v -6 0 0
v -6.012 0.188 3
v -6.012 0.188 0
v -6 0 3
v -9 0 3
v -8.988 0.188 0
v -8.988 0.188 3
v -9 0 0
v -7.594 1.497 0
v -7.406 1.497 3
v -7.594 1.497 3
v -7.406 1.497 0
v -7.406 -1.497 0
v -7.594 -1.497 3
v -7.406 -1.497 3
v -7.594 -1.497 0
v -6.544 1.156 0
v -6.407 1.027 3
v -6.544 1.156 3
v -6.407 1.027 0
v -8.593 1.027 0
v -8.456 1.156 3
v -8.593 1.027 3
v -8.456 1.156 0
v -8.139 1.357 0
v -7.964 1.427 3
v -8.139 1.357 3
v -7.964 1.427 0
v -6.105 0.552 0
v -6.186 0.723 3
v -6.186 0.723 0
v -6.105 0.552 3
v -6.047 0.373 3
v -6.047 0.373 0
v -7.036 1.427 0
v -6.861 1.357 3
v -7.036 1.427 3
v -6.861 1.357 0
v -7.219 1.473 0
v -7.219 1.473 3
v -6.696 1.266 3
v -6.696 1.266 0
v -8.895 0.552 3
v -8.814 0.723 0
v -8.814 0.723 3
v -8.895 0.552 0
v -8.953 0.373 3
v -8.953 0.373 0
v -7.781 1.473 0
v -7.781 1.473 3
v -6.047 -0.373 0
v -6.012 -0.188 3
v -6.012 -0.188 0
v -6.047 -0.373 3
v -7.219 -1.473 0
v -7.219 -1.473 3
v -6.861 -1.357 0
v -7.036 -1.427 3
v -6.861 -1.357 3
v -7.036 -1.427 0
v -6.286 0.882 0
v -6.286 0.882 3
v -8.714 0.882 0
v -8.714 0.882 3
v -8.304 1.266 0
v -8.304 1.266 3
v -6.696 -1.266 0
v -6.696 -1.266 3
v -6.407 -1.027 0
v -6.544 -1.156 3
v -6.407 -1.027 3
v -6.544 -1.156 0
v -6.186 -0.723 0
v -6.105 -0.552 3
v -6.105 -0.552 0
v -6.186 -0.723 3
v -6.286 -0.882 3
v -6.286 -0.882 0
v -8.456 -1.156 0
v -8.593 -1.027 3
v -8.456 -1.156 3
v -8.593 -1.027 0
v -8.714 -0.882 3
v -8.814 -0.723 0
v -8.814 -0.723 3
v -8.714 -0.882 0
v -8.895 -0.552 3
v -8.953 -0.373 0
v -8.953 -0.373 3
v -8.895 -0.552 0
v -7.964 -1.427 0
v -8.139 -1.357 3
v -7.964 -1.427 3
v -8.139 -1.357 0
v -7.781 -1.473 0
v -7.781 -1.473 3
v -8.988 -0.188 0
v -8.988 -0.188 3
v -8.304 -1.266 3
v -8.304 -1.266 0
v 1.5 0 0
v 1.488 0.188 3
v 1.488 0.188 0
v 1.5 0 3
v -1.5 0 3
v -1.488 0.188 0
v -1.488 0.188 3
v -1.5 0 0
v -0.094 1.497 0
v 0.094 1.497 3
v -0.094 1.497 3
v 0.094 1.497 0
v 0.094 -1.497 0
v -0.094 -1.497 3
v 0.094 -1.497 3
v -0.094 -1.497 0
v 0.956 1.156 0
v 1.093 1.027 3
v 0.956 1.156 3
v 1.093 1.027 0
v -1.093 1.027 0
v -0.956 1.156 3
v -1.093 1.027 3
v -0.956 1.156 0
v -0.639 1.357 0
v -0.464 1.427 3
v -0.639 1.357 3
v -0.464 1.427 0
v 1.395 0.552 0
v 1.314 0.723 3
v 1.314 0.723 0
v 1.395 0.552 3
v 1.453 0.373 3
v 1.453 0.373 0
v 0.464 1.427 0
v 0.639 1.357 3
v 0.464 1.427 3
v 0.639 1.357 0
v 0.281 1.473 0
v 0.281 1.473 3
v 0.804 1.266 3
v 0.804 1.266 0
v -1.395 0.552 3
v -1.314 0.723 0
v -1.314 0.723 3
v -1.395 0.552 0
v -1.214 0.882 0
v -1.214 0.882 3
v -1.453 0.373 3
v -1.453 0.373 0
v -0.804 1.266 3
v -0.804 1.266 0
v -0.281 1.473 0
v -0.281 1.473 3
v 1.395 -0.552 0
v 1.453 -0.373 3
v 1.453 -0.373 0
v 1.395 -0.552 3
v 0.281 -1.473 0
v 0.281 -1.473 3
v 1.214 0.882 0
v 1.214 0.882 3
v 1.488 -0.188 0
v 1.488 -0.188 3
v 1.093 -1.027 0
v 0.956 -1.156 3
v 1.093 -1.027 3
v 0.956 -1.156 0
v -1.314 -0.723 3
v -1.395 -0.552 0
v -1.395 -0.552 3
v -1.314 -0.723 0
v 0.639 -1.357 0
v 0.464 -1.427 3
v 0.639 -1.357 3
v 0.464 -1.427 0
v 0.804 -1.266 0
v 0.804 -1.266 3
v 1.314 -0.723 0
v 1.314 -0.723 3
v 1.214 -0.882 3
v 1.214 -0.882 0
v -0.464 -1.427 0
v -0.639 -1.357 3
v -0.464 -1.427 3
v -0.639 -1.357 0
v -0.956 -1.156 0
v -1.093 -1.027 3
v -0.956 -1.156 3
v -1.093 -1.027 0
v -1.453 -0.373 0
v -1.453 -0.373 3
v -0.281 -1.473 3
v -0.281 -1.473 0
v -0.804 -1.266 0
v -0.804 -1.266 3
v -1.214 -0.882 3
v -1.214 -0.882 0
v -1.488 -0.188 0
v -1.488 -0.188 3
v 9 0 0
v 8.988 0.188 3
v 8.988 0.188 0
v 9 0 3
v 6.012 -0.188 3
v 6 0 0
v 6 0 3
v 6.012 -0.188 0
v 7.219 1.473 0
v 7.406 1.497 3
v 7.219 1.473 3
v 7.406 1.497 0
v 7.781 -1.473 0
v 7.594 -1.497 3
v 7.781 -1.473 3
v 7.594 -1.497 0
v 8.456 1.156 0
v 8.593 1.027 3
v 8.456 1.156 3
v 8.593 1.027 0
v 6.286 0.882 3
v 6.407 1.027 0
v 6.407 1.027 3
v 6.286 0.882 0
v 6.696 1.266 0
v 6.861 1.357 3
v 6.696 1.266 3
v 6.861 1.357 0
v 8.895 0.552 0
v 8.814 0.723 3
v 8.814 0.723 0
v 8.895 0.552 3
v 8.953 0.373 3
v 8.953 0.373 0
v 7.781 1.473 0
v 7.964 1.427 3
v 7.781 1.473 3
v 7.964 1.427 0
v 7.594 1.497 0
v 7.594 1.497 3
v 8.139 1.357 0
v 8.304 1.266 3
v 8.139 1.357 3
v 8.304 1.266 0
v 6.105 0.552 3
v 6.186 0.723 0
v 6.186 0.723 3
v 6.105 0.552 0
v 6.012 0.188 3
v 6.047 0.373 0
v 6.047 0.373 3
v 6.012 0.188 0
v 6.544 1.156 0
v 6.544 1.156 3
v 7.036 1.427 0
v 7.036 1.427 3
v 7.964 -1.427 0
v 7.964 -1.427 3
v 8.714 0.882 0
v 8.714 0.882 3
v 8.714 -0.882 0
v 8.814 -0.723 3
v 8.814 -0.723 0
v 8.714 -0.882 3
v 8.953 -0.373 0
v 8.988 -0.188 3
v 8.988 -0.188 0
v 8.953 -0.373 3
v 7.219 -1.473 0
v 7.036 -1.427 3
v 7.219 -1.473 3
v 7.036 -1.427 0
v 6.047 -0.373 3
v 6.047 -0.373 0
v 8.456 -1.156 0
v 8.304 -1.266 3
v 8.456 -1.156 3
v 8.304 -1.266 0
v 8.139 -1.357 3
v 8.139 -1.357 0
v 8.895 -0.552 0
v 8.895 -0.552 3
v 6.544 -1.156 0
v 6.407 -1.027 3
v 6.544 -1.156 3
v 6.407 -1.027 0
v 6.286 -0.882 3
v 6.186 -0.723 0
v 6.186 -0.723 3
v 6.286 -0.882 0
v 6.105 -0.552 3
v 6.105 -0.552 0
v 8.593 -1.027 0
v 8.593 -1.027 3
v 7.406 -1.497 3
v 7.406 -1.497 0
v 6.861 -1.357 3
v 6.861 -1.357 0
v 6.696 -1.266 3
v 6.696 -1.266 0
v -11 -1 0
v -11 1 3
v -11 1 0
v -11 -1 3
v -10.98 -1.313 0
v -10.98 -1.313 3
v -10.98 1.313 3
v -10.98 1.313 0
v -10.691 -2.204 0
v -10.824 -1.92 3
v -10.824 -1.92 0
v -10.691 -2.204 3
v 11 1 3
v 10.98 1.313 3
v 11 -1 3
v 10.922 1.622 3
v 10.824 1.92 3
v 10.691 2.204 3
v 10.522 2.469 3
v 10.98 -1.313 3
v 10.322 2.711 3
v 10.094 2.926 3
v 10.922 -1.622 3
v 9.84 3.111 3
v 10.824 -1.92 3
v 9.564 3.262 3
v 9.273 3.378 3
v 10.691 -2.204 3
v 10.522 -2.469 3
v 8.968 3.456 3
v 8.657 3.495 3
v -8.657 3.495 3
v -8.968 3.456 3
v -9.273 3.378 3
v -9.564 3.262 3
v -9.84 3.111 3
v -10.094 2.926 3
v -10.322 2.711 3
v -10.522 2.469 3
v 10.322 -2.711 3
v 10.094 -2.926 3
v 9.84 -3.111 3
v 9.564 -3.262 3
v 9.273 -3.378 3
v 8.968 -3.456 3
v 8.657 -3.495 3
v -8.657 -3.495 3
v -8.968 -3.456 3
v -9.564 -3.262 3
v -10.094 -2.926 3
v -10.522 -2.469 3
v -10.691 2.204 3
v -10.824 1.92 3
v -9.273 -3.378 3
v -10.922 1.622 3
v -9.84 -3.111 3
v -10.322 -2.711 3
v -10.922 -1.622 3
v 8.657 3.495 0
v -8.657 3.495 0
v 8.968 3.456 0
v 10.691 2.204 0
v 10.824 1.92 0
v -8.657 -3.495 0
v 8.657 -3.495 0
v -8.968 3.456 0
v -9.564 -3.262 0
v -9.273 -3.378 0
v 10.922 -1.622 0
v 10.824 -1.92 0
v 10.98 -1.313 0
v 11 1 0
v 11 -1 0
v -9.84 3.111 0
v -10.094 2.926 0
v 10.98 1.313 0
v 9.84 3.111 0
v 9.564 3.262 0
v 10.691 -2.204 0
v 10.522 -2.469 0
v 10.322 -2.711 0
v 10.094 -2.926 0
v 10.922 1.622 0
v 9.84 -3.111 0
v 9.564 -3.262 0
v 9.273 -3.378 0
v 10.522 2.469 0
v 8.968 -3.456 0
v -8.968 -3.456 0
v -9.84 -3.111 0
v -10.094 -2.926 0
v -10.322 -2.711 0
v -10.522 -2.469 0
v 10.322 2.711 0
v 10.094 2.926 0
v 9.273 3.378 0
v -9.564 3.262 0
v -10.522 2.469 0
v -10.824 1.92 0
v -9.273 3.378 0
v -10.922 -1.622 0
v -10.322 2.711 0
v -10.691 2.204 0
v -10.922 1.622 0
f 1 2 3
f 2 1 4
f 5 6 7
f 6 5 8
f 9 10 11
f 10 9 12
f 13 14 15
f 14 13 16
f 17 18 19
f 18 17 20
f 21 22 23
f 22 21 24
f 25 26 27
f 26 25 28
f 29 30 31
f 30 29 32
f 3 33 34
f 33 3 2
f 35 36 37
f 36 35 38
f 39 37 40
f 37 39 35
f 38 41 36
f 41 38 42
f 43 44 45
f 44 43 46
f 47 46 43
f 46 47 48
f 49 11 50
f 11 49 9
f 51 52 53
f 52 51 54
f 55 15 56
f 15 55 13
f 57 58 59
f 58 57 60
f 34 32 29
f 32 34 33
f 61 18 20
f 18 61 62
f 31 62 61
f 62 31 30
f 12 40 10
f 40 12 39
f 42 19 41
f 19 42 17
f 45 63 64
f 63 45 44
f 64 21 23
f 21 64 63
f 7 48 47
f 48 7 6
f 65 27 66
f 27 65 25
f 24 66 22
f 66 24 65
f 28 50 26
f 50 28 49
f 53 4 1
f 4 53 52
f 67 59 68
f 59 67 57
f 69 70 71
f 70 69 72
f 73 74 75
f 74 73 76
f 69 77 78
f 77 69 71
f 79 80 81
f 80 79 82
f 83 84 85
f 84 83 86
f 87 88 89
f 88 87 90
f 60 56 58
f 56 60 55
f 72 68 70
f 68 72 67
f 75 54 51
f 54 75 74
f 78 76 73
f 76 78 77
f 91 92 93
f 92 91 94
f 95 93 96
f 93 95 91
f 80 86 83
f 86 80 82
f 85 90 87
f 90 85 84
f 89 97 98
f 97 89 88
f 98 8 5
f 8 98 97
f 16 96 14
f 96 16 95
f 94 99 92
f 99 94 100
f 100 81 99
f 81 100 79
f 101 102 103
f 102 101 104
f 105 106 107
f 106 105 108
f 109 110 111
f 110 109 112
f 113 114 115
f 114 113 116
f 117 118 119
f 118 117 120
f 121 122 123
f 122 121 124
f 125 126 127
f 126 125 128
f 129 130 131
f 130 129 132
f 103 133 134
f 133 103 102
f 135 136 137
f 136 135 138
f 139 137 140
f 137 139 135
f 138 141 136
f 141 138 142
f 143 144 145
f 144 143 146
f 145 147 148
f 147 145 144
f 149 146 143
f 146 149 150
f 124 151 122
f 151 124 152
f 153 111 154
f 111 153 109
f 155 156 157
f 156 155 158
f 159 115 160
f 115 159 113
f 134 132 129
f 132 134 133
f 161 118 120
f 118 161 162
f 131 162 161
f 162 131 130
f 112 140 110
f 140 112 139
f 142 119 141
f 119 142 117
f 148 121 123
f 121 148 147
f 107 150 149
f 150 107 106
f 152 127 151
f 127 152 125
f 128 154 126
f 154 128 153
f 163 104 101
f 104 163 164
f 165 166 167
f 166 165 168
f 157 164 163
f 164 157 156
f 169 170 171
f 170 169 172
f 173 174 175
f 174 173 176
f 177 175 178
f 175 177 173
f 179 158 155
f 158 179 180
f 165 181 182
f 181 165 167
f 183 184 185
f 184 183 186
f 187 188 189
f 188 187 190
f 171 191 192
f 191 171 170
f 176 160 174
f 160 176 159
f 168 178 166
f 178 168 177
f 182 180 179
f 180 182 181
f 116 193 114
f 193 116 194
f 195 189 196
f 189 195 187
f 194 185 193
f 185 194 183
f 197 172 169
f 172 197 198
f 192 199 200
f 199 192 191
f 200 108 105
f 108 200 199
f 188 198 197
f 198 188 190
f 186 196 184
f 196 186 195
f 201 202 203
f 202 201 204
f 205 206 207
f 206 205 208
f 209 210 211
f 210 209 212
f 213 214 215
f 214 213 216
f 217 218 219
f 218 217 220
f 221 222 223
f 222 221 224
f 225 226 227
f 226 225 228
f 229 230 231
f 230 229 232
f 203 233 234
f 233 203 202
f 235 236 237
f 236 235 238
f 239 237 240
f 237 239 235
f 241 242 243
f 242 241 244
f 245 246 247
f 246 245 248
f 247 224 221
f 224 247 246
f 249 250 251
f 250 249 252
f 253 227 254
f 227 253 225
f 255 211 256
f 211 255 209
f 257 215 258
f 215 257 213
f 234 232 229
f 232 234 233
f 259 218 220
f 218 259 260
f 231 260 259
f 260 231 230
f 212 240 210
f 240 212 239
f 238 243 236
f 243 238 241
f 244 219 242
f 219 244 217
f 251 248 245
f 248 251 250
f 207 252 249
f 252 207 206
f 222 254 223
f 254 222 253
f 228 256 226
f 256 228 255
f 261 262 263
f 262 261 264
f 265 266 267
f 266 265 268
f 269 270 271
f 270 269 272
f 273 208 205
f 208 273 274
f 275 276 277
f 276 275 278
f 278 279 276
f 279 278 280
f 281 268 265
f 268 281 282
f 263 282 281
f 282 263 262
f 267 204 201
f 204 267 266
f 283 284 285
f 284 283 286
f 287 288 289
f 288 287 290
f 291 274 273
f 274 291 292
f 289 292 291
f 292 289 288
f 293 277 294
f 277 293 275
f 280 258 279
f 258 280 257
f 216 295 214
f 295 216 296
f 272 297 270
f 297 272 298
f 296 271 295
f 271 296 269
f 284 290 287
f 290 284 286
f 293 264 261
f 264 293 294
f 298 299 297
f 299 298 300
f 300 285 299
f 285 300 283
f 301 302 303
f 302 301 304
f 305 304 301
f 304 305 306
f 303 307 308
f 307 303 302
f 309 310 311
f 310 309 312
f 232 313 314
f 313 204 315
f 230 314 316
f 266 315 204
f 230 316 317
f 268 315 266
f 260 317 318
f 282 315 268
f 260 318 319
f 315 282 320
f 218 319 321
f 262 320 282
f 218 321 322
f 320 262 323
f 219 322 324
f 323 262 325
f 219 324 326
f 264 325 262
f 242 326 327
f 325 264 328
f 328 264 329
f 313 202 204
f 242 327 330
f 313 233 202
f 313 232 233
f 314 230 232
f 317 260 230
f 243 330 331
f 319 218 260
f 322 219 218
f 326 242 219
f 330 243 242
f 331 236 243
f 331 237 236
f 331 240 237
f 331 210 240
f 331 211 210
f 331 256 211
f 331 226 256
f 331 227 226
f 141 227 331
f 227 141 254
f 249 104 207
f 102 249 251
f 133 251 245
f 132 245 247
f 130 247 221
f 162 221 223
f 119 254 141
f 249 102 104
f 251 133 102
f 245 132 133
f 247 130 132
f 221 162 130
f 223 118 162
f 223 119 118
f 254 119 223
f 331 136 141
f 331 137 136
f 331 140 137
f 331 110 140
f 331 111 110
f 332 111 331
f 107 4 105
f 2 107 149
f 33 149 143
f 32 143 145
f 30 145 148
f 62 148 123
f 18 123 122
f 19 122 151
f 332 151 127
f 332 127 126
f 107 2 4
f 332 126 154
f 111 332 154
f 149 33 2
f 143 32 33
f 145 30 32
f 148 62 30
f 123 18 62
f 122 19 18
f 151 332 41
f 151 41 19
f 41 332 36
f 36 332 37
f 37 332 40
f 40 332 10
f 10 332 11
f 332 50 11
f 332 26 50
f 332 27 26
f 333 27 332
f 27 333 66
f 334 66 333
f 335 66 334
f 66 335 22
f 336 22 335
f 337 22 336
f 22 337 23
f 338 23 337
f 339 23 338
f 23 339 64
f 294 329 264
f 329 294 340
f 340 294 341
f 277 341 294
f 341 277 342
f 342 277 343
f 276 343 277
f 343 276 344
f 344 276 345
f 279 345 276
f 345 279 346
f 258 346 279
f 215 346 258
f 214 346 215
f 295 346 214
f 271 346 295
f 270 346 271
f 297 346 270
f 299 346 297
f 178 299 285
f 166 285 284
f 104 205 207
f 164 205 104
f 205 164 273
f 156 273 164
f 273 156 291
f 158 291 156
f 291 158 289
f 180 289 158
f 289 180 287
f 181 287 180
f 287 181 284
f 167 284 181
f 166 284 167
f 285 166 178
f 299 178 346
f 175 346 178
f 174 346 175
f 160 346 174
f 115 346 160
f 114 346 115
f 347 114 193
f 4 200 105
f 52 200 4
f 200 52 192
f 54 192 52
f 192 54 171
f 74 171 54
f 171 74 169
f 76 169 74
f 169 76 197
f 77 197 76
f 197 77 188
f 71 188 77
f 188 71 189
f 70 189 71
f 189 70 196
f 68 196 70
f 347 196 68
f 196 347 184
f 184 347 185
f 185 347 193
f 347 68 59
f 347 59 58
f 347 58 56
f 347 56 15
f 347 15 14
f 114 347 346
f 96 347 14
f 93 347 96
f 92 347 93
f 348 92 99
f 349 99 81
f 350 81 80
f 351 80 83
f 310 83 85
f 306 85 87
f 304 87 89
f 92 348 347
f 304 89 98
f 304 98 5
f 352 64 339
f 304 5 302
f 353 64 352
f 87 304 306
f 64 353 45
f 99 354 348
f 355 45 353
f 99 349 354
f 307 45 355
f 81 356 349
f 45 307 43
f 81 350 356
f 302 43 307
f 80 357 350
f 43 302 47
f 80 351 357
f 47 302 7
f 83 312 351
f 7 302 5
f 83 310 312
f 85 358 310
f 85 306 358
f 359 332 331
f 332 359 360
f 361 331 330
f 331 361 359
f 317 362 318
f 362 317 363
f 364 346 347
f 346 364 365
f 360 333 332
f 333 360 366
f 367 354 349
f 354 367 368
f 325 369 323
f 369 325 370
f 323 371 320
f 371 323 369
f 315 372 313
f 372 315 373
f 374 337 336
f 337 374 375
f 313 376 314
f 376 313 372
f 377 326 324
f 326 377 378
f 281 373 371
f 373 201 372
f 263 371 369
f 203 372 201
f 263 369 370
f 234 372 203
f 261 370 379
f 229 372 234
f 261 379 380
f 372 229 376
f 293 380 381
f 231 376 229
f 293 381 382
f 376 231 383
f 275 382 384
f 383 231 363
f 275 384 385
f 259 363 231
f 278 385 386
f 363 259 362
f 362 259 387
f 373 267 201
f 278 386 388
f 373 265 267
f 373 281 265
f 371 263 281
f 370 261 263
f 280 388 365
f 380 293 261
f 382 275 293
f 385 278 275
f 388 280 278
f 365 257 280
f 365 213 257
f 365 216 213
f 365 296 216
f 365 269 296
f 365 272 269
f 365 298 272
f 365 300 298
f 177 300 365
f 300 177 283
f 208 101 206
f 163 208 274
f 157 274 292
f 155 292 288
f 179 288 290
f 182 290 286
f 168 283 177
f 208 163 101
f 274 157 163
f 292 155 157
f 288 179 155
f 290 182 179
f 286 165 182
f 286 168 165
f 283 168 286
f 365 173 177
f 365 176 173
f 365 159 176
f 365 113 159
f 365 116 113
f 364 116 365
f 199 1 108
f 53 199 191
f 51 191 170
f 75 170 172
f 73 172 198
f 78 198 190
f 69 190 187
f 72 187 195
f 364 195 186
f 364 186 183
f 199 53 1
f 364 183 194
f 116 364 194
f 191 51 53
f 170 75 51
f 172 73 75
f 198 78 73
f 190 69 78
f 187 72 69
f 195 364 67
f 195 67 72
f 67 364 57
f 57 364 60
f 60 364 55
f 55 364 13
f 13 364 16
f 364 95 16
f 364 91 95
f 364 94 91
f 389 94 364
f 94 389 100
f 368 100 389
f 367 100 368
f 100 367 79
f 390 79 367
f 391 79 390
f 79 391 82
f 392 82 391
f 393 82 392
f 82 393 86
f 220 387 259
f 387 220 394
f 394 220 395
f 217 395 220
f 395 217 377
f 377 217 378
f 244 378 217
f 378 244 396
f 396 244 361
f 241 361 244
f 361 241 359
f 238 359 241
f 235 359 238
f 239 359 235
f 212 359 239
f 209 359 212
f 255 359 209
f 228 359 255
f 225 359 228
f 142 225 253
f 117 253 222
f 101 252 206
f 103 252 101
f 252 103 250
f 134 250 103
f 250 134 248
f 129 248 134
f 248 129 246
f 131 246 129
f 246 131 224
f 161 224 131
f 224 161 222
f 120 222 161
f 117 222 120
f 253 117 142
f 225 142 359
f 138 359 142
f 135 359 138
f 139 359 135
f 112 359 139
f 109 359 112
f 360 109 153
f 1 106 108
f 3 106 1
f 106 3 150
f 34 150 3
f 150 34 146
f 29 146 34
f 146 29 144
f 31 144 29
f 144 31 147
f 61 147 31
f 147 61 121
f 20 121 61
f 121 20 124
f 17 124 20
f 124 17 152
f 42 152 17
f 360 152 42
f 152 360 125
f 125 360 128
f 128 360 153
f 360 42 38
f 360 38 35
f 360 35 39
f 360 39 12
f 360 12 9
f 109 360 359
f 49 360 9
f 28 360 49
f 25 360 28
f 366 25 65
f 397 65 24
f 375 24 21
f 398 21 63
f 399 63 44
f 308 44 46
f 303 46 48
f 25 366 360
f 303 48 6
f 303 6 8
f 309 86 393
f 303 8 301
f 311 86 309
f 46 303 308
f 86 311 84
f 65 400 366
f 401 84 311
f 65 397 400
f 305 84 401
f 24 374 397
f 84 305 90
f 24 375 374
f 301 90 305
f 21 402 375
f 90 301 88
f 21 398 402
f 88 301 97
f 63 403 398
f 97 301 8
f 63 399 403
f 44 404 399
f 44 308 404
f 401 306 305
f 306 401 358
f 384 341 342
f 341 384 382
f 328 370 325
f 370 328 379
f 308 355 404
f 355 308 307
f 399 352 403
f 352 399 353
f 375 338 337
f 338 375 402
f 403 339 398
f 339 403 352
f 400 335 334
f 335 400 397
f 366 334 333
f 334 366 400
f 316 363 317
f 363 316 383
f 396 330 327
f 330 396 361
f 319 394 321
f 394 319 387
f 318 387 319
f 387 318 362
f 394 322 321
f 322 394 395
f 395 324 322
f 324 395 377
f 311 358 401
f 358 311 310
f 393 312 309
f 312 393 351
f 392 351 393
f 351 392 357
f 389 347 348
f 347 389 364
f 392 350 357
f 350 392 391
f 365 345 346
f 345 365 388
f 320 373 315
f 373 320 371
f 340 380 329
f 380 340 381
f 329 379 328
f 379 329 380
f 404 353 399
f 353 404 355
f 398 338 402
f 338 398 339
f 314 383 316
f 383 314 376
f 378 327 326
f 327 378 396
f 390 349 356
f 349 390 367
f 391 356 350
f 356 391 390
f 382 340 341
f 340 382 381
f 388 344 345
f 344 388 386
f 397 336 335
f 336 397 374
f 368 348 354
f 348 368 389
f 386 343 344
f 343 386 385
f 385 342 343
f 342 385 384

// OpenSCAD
$fn = 50;


difference() {
	union() {
		translate(v = [0, 0, 0]) {
			rotate(a = [0, 0, 0]) {
				hull() {
					translate(v = [-8.5000000000, 1.0000000000, 0]) {
						rotate(a = [0, 0, 0]) {
							translate(v = [0, 0, 0]) {
								rotate(a = [0, 0, 0]) {
									cylinder(h = 3, r = 2.5000000000);
								}
							}
						}
					}
					translate(v = [8.5000000000, 1.0000000000, 0]) {
						rotate(a = [0, 0, 0]) {
							translate(v = [0, 0, 0]) {
								rotate(a = [0, 0, 0]) {
									cylinder(h = 3, r = 2.5000000000);
								}
							}
						}
					}
					translate(v = [-8.5000000000, -1.0000000000, 0]) {
						rotate(a = [0, 0, 0]) {
							translate(v = [0, 0, 0]) {
								rotate(a = [0, 0, 0]) {
									cylinder(h = 3, r = 2.5000000000);
								}
							}
						}
					}
					translate(v = [8.5000000000, -1.0000000000, 0]) {
						rotate(a = [0, 0, 0]) {
							translate(v = [0, 0, 0]) {
								rotate(a = [0, 0, 0]) {
									cylinder(h = 3, r = 2.5000000000);
								}
							}
						}
					}
				}
			}
		}
	}
	union() {
		translate(v = [-7.5000000000, 0.0000000000, 0]) {
			rotate(a = [0, 0, 0]) {
				translate(v = [0, 0, -50]) {
					rotate(a = [0, 0, 0]) {
						cylinder(h = 100, r = 1.5000000000);
					}
				}
			}
		}
		translate(v = [0.0000000000, 0.0000000000, 0]) {
			rotate(a = [0, 0, 0]) {
				translate(v = [0, 0, -50]) {
					rotate(a = [0, 0, 0]) {
						cylinder(h = 100, r = 1.5000000000);
					}
				}
			}
		}
		translate(v = [7.5000000000, 0.0000000000, 0]) {
			rotate(a = [0, 0, 0]) {
				translate(v = [0, 0, -50]) {
					rotate(a = [0, 0, 0]) {
						cylinder(h = 100, r = 1.5000000000);
					}
				}
			}
		}
	}
}
